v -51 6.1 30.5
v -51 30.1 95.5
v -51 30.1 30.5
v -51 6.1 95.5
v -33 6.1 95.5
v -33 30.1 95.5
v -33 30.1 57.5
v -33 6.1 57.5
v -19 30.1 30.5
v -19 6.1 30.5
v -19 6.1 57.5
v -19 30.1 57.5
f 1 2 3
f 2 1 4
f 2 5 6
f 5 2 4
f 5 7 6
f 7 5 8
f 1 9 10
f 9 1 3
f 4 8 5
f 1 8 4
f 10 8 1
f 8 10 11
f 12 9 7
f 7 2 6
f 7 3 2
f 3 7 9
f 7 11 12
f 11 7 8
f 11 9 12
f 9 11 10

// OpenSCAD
// file: D:/Projects/assembly-workshop/outputs/Screen_Pi_Hue_SCR5-H_2026-10-30/checks/geometry.scad
// SCR5-G; mm; FRONT view: X right, Z up, Y into rack. Glass/plate front Y=0.
// Measured values: work/screen-5in/Dimensions.md. Physical fit/strength UNKNOWN.
part="plate";
DROP=0.45; // coupon winner can be substituted here; all three pins use this DROP
LIP=0.8; LIP_ON=true;
LIP_EDGES=[true,true,false,false]; // left,right,bottom,top; Brian: side lips only, cosmetic
FRAME_STEP=1.5; // measured glass-edge inset to metal LCD frame, left/right only
SHIM=0; // moves rear frame seat and plate-boss mating face back
$fn=48;
GCX=33; GCZ=41.5; PW=252; PH=88.8; PT=4;
GW=120.7; GH=77.2; CLEAR=0.2; WW=GW+2*CLEAR; WH=GH+2*CLEAR;
SEAT=13.3+SHIM; FT=3;
SO=[56.45,34]; BTN_X=[45.5,35.5,25.5];
PCB_TOP=38; GAP=0.10; LEAF_T=0.8;
HOLE=[3.4,40.3,44.7];
BX=[GCX-68,GCX+68]; BZ=[10,72];
// DSI connector X extent is unmeasured: conservative assumed 8 mm inward from PCB edge.
DSI=[GCX-60.5,9.1,GCZ-38+30,8,5.25,21];
module xz(y,d){translate([0,y+d,0])rotate([90,0,0])linear_extrude(d)children();}
// rr/rack_slots copied from SCR5-F; same exact slot centres, outline shifted -0.05 Z to centre 44.4.
module rr(w,h,r){hull()for(x=[-w/2+r,w/2-r],z=[-h/2+r,h/2-r])translate([x,z])circle(r=r);}
module rack_slots(){for(x=[-118.2625,118.2625],z=[6.323,38.127,50.773,82.577])translate([x,z])hull()for(dx=[-1.5,1.5])translate([dx,0])circle(d=7);}
module cyl_y(x,y,z,d,h){translate([x,y,z])rotate([-90,0,0])cylinder(d=d,h=h);}
module window_cut(){
  xz(-0.02,4.04)translate([GCX,GCZ])square([WW,WH],center=true);
  // 0.3 x 45-degree chamfer, square corners, front only.
  translate([GCX,0.3,GCZ])rotate([90,0,0])
    linear_extrude(height=0.3,scale=[(WW+0.6)/WW,(WH+0.6)/WH])square([WW,WH],center=true);
}
module lips(){
  // Cosmetic side ledges only; rear frame/standoffs set depth and retain the screen.
  if(LIP_ON)for(i=[0:3])if(LIP_EDGES[i]){
    if(i<2)translate([GCX+(i==0?-WW/2:WW/2-LIP),2.5,GCZ-GH/2+4])cube([LIP,0.8,GH-8]);
    else translate([GCX-GW/2+4,2.5,GCZ+(i==2?-WH/2:WH/2-LIP)])cube([GW-8,0.8,LIP]);
  }
}
// Leaf/nub/bump geometry copied from SCR5-WP-A, translated to this glass centre.
module leaves(){for(x=BTN_X)translate([GCX+x-1.5,0,GCZ]){
  translate([0,0,PCB_TOP+GAP+0.9+0.1])cube([3,11.8,LEAF_T]);
  translate([0,10.2,PCB_TOP+GAP])cube([3,1.4,1.0+LEAF_T/2]);
  translate([0,10.4,PCB_TOP+GAP+1.0+LEAF_T])cube([3,1.0,0.9]);
}}
module plate(){difference(){union(){
  difference(){xz(0,PT)translate([0,PH/2])rr(PW,PH,2.5);window_cut();}
  for(x=BX,z=BZ)cyl_y(x,3.9,z,8,SEAT-3.9);
  leaves(); lips();
 }
 xz(-0.02,4.04)rack_slots();
 for(x=BTN_X)translate([GCX+x-HOLE[0]/2,-0.02,GCZ+HOLE[1]])cube([HOLE[0],SEAT+FT+0.04,HOLE[2]-HOLE[1]]);
 // Printed-in screw pilots (no heat-set OD assumption): nominal M2.5, fit UNKNOWN.
 for(x=BX,z=BZ)cyl_y(x,SEAT-6,z,2.1,6.02);
 // Rear engraving, 0.5 deep, left field.
 xz(3.5,0.52)translate([-75,40])mirror([1,0])text("SCR5-G",size=6,halign="center",font="Liberation Sans:style=Bold");
}}
module frame_blank(){
  // C-shaped perimeter; no material across the board centre / touch FPC.
  xz(SEAT,FT)translate([GCX,GCZ])difference(){square([132,76],center=true);square([116,60],center=true);}
  for(sx=[-1,1],sz=[-1,1])cyl_y(GCX+sx*SO[0],SEAT,GCZ+sz*SO[1],9,FT);
  for(x=BX,z=BZ)hull(){cyl_y(x,SEAT,z,8,FT);cyl_y(GCX+(x<GCX?-62:62),SEAT,z,8,FT);}
}
module dsi_keepout(){translate([DSI[0]-3,DSI[1]-3,DSI[2]-3])cube([DSI[3]+6,DSI[4]+6,DSI[5]+6]);}
module ribbon_route(){
  // Open left/up corridor 18 mm wide; extends past top of plate.
  translate([GCX-84,6.1,GCZ-11])cube([18,24,65]);
  translate([GCX-84,6.1,GCZ-11])cube([32,24,27]);
}
module frame(){difference(){frame_blank();dsi_keepout();ribbon_route();
 for(sx=[-1,1],sz=[-1,1])cyl_y(GCX+sx*SO[0],SEAT-0.02,GCZ+sz*SO[1],2.8,FT+0.04);
 for(x=BX,z=BZ)cyl_y(x,SEAT-0.02,z,2.8,FT+0.04);
}}
// Pin polygon/cap/notch/dot design copied unchanged from SCR5-WP-A.
module pin(d,dots){s=2*d+0.5;difference(){union(){
 translate([-1.5,0,0])rotate([90,0,90])linear_extrude(3)polygon([
 [-s-0.02,40.5],[10.2,40.5],[10.2,41.0],[11.5,41.0],[11.5+2*d,41.0-d],[15,41.0-d],[15,44.5],[-s-0.02,44.5]]);
 translate([-2.5,-s-1.5,39.6])cube([5,1.5,5.8]);
 }for(i=[0:dots-1])translate([(i-(dots-1)/2)*1.4,-s-1.5-0.01,43.5])rotate([-90,0,0])cylinder(d=0.9,h=0.4);}}
module placed_pin(i){translate([GCX+BTN_X[i],0,GCZ])pin(DROP,i+1);}
// Measured layers: cover glass 0.9 + second glass 1.6, metal frame 3.0,
// open gap 2.0, PCB 1.6. Metal frame inset ~1.5 at LEFT/RIGHT only.
// PCB centred under glass and full metal-frame top/bottom extent remain UNKNOWN.
module glass(){translate([GCX-GW/2,0,GCZ-GH/2])cube([GW,2.5,GH]);}
module lcd(){
  translate([GCX-GW/2+FRAME_STEP,2.5,GCZ-GH/2])cube([GW-2*FRAME_STEP,3.0,GH]);
}
module pcb(){translate([GCX-60.5,7.5,GCZ-38])cube([121,1.6,76]);}
module standoffs(){for(sx=[-1,1],sz=[-1,1])difference(){cyl_y(GCX+sx*SO[0],9.1,GCZ+sz*SO[1],5.5,4.2);cyl_y(GCX+sx*SO[0],9.08,GCZ+sz*SO[1],2.5,4.24);}}
module buttons(){for(x=BTN_X){
 translate([GCX+x-3.5,9.1,GCZ+38-3.4])cube([7,3.6,2.4]);
 translate([GCX+x-1.5,9.1,GCZ+37])cube([3,3.6,1]);
}}
module dsi(){translate([DSI[0],DSI[1],DSI[2]])cube([DSI[3],DSI[4],DSI[5]]);}
module touch(){translate([GCX-10,9.1,GCZ-5])cube([20,2,10]);} // lateral extent unmeasured
module dummy(){glass();lcd();pcb();standoffs();buttons();dsi();touch();}
module assembly(){color("gray")plate();color("orange")frame();for(i=[0:2])color("cyan")placed_pin(i);color([0.2,0.3,0.4,0.4])dummy();}
// main file
include <D:/Projects/assembly-workshop/outputs/Screen_Pi_Hue_SCR5-H_2026-10-30/checks/geometry.scad>
ribbon_route();
